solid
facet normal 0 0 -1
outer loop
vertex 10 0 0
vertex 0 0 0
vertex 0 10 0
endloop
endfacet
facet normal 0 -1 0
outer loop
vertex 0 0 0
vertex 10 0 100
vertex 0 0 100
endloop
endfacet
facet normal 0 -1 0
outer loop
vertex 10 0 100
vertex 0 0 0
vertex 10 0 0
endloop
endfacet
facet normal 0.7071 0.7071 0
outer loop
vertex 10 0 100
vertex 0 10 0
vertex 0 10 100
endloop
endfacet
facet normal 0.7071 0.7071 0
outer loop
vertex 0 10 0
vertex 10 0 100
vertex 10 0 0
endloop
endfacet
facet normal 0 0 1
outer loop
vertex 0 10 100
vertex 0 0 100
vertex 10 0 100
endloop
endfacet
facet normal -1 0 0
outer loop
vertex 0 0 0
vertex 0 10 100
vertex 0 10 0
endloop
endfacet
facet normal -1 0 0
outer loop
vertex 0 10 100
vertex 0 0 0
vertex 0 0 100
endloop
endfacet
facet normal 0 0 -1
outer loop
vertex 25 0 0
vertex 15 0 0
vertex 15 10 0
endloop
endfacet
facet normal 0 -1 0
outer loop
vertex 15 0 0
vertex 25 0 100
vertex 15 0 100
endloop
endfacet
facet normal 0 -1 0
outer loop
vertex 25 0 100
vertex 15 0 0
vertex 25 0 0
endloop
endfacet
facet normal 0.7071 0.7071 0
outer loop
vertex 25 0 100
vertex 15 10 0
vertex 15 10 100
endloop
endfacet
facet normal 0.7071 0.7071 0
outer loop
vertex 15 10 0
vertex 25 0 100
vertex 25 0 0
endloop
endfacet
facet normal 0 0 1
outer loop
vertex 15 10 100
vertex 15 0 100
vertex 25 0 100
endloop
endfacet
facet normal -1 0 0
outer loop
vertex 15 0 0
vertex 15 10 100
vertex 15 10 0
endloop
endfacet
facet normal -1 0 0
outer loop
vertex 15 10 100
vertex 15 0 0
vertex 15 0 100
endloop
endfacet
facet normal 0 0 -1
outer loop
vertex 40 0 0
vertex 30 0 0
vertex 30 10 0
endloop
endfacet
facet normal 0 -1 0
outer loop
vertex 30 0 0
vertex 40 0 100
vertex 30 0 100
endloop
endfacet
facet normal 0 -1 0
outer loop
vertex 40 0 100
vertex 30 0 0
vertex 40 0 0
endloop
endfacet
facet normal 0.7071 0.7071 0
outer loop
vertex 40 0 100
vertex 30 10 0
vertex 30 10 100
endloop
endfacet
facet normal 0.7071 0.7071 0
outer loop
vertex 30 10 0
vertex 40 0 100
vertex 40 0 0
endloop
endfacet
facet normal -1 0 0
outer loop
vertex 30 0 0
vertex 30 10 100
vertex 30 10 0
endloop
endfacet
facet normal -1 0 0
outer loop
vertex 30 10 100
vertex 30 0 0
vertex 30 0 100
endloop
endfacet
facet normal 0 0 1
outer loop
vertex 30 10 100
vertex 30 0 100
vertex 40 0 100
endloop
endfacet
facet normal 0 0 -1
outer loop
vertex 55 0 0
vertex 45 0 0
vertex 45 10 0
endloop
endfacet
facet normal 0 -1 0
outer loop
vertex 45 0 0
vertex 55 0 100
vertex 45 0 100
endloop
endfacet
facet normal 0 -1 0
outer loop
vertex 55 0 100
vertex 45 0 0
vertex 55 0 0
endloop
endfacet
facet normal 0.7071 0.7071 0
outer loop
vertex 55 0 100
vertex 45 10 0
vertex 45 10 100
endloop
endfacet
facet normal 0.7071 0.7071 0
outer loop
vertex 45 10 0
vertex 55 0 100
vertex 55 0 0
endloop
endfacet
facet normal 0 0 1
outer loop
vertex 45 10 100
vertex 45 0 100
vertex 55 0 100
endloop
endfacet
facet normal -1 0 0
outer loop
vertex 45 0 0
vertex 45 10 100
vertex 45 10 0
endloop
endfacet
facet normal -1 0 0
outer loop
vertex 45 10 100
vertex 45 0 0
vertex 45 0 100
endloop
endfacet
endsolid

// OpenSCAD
// file: params.scad
// Global Parameters for Dimon brace

// The HSS is a HSS 127x127x13 G40.20

HSS_d = 127.0;
HSS_b = 127.0;
HSS_t = 12.7;
HSS_l = 250.0;    //length of HSS for model

// The tongue plate (welded into slot in HSS)

TP_t = 20.0;
// TP_w = 280.0;  // width of plate
TP_w = 250.0;
TP_l = 250.0;   // total length
TP_lw = 100.0;  // length of welded portion

// cover plate (welded on HSS)

CP_t = 10;
CP_w = 60;
CP_l = 200;
CP_setback = 10;
CP_lw = CP_l;

// welds

TP_D = 8;
CP_D = 6;

// Bolts

BOLT_d = 20;    // diameter
BOLT_hd = BOLT_d + 2;    // hole diameter
// BOLT_s = 75;             // longitudinal spacing (pitch)
// BOLT_g = 75;             // transverse spacing (gauge)
BOLT_s = 70;             // longitudinal spacing (pitch)
BOLT_g = 70;             // transverse spacing (gauge)
BOLT_NG = 3;             // number of gauge lines (across)
BOLT_NT = 2;             // number of transverse lines
// BOLT_e = 40;		 // end distance
BOLT_e = 35;		 // end distance

// Gusset plate

GP_w = TP_w;
GP_t = TP_t;
// GP_w2 = 110;
GP_w2 = 70;
GP_theta = 45;
GP_l1 = GP_w2 + GP_w*cos(GP_theta);   // dist out to furthest pt
GP_l = GP_l1*tan(GP_theta) + GP_w*sin(GP_theta);
// GP_gap = 10;		// gap to tongue plate
GP_gap = 5;		// gap to tongue plate

// Lap Plate

LP_t = 10;
LP_w = 230;
LP_l = 2*(BOLT_NT-1)*BOLT_s + 4*BOLT_e + GP_gap;


// misc.

$fn = 60;       // number of sides for poly approx to circles
// main file
include <params.scad>;

module weld(D,L) {
    pts = [[0,0],[D,0],[0,D]];
    linear_extrude(L) polygon(pts);
}

render() {
    S = 1.25;
    weld(TP_D*S,TP_lw);
    translate([1.5*TP_D*S,0,0]) weld(TP_D*S,TP_lw);
    translate([3.0*TP_D*S,0,0]) weld(TP_D*S,TP_lw);
    translate([4.5*TP_D*S,0,0]) weld(TP_D*S,TP_lw);
}
